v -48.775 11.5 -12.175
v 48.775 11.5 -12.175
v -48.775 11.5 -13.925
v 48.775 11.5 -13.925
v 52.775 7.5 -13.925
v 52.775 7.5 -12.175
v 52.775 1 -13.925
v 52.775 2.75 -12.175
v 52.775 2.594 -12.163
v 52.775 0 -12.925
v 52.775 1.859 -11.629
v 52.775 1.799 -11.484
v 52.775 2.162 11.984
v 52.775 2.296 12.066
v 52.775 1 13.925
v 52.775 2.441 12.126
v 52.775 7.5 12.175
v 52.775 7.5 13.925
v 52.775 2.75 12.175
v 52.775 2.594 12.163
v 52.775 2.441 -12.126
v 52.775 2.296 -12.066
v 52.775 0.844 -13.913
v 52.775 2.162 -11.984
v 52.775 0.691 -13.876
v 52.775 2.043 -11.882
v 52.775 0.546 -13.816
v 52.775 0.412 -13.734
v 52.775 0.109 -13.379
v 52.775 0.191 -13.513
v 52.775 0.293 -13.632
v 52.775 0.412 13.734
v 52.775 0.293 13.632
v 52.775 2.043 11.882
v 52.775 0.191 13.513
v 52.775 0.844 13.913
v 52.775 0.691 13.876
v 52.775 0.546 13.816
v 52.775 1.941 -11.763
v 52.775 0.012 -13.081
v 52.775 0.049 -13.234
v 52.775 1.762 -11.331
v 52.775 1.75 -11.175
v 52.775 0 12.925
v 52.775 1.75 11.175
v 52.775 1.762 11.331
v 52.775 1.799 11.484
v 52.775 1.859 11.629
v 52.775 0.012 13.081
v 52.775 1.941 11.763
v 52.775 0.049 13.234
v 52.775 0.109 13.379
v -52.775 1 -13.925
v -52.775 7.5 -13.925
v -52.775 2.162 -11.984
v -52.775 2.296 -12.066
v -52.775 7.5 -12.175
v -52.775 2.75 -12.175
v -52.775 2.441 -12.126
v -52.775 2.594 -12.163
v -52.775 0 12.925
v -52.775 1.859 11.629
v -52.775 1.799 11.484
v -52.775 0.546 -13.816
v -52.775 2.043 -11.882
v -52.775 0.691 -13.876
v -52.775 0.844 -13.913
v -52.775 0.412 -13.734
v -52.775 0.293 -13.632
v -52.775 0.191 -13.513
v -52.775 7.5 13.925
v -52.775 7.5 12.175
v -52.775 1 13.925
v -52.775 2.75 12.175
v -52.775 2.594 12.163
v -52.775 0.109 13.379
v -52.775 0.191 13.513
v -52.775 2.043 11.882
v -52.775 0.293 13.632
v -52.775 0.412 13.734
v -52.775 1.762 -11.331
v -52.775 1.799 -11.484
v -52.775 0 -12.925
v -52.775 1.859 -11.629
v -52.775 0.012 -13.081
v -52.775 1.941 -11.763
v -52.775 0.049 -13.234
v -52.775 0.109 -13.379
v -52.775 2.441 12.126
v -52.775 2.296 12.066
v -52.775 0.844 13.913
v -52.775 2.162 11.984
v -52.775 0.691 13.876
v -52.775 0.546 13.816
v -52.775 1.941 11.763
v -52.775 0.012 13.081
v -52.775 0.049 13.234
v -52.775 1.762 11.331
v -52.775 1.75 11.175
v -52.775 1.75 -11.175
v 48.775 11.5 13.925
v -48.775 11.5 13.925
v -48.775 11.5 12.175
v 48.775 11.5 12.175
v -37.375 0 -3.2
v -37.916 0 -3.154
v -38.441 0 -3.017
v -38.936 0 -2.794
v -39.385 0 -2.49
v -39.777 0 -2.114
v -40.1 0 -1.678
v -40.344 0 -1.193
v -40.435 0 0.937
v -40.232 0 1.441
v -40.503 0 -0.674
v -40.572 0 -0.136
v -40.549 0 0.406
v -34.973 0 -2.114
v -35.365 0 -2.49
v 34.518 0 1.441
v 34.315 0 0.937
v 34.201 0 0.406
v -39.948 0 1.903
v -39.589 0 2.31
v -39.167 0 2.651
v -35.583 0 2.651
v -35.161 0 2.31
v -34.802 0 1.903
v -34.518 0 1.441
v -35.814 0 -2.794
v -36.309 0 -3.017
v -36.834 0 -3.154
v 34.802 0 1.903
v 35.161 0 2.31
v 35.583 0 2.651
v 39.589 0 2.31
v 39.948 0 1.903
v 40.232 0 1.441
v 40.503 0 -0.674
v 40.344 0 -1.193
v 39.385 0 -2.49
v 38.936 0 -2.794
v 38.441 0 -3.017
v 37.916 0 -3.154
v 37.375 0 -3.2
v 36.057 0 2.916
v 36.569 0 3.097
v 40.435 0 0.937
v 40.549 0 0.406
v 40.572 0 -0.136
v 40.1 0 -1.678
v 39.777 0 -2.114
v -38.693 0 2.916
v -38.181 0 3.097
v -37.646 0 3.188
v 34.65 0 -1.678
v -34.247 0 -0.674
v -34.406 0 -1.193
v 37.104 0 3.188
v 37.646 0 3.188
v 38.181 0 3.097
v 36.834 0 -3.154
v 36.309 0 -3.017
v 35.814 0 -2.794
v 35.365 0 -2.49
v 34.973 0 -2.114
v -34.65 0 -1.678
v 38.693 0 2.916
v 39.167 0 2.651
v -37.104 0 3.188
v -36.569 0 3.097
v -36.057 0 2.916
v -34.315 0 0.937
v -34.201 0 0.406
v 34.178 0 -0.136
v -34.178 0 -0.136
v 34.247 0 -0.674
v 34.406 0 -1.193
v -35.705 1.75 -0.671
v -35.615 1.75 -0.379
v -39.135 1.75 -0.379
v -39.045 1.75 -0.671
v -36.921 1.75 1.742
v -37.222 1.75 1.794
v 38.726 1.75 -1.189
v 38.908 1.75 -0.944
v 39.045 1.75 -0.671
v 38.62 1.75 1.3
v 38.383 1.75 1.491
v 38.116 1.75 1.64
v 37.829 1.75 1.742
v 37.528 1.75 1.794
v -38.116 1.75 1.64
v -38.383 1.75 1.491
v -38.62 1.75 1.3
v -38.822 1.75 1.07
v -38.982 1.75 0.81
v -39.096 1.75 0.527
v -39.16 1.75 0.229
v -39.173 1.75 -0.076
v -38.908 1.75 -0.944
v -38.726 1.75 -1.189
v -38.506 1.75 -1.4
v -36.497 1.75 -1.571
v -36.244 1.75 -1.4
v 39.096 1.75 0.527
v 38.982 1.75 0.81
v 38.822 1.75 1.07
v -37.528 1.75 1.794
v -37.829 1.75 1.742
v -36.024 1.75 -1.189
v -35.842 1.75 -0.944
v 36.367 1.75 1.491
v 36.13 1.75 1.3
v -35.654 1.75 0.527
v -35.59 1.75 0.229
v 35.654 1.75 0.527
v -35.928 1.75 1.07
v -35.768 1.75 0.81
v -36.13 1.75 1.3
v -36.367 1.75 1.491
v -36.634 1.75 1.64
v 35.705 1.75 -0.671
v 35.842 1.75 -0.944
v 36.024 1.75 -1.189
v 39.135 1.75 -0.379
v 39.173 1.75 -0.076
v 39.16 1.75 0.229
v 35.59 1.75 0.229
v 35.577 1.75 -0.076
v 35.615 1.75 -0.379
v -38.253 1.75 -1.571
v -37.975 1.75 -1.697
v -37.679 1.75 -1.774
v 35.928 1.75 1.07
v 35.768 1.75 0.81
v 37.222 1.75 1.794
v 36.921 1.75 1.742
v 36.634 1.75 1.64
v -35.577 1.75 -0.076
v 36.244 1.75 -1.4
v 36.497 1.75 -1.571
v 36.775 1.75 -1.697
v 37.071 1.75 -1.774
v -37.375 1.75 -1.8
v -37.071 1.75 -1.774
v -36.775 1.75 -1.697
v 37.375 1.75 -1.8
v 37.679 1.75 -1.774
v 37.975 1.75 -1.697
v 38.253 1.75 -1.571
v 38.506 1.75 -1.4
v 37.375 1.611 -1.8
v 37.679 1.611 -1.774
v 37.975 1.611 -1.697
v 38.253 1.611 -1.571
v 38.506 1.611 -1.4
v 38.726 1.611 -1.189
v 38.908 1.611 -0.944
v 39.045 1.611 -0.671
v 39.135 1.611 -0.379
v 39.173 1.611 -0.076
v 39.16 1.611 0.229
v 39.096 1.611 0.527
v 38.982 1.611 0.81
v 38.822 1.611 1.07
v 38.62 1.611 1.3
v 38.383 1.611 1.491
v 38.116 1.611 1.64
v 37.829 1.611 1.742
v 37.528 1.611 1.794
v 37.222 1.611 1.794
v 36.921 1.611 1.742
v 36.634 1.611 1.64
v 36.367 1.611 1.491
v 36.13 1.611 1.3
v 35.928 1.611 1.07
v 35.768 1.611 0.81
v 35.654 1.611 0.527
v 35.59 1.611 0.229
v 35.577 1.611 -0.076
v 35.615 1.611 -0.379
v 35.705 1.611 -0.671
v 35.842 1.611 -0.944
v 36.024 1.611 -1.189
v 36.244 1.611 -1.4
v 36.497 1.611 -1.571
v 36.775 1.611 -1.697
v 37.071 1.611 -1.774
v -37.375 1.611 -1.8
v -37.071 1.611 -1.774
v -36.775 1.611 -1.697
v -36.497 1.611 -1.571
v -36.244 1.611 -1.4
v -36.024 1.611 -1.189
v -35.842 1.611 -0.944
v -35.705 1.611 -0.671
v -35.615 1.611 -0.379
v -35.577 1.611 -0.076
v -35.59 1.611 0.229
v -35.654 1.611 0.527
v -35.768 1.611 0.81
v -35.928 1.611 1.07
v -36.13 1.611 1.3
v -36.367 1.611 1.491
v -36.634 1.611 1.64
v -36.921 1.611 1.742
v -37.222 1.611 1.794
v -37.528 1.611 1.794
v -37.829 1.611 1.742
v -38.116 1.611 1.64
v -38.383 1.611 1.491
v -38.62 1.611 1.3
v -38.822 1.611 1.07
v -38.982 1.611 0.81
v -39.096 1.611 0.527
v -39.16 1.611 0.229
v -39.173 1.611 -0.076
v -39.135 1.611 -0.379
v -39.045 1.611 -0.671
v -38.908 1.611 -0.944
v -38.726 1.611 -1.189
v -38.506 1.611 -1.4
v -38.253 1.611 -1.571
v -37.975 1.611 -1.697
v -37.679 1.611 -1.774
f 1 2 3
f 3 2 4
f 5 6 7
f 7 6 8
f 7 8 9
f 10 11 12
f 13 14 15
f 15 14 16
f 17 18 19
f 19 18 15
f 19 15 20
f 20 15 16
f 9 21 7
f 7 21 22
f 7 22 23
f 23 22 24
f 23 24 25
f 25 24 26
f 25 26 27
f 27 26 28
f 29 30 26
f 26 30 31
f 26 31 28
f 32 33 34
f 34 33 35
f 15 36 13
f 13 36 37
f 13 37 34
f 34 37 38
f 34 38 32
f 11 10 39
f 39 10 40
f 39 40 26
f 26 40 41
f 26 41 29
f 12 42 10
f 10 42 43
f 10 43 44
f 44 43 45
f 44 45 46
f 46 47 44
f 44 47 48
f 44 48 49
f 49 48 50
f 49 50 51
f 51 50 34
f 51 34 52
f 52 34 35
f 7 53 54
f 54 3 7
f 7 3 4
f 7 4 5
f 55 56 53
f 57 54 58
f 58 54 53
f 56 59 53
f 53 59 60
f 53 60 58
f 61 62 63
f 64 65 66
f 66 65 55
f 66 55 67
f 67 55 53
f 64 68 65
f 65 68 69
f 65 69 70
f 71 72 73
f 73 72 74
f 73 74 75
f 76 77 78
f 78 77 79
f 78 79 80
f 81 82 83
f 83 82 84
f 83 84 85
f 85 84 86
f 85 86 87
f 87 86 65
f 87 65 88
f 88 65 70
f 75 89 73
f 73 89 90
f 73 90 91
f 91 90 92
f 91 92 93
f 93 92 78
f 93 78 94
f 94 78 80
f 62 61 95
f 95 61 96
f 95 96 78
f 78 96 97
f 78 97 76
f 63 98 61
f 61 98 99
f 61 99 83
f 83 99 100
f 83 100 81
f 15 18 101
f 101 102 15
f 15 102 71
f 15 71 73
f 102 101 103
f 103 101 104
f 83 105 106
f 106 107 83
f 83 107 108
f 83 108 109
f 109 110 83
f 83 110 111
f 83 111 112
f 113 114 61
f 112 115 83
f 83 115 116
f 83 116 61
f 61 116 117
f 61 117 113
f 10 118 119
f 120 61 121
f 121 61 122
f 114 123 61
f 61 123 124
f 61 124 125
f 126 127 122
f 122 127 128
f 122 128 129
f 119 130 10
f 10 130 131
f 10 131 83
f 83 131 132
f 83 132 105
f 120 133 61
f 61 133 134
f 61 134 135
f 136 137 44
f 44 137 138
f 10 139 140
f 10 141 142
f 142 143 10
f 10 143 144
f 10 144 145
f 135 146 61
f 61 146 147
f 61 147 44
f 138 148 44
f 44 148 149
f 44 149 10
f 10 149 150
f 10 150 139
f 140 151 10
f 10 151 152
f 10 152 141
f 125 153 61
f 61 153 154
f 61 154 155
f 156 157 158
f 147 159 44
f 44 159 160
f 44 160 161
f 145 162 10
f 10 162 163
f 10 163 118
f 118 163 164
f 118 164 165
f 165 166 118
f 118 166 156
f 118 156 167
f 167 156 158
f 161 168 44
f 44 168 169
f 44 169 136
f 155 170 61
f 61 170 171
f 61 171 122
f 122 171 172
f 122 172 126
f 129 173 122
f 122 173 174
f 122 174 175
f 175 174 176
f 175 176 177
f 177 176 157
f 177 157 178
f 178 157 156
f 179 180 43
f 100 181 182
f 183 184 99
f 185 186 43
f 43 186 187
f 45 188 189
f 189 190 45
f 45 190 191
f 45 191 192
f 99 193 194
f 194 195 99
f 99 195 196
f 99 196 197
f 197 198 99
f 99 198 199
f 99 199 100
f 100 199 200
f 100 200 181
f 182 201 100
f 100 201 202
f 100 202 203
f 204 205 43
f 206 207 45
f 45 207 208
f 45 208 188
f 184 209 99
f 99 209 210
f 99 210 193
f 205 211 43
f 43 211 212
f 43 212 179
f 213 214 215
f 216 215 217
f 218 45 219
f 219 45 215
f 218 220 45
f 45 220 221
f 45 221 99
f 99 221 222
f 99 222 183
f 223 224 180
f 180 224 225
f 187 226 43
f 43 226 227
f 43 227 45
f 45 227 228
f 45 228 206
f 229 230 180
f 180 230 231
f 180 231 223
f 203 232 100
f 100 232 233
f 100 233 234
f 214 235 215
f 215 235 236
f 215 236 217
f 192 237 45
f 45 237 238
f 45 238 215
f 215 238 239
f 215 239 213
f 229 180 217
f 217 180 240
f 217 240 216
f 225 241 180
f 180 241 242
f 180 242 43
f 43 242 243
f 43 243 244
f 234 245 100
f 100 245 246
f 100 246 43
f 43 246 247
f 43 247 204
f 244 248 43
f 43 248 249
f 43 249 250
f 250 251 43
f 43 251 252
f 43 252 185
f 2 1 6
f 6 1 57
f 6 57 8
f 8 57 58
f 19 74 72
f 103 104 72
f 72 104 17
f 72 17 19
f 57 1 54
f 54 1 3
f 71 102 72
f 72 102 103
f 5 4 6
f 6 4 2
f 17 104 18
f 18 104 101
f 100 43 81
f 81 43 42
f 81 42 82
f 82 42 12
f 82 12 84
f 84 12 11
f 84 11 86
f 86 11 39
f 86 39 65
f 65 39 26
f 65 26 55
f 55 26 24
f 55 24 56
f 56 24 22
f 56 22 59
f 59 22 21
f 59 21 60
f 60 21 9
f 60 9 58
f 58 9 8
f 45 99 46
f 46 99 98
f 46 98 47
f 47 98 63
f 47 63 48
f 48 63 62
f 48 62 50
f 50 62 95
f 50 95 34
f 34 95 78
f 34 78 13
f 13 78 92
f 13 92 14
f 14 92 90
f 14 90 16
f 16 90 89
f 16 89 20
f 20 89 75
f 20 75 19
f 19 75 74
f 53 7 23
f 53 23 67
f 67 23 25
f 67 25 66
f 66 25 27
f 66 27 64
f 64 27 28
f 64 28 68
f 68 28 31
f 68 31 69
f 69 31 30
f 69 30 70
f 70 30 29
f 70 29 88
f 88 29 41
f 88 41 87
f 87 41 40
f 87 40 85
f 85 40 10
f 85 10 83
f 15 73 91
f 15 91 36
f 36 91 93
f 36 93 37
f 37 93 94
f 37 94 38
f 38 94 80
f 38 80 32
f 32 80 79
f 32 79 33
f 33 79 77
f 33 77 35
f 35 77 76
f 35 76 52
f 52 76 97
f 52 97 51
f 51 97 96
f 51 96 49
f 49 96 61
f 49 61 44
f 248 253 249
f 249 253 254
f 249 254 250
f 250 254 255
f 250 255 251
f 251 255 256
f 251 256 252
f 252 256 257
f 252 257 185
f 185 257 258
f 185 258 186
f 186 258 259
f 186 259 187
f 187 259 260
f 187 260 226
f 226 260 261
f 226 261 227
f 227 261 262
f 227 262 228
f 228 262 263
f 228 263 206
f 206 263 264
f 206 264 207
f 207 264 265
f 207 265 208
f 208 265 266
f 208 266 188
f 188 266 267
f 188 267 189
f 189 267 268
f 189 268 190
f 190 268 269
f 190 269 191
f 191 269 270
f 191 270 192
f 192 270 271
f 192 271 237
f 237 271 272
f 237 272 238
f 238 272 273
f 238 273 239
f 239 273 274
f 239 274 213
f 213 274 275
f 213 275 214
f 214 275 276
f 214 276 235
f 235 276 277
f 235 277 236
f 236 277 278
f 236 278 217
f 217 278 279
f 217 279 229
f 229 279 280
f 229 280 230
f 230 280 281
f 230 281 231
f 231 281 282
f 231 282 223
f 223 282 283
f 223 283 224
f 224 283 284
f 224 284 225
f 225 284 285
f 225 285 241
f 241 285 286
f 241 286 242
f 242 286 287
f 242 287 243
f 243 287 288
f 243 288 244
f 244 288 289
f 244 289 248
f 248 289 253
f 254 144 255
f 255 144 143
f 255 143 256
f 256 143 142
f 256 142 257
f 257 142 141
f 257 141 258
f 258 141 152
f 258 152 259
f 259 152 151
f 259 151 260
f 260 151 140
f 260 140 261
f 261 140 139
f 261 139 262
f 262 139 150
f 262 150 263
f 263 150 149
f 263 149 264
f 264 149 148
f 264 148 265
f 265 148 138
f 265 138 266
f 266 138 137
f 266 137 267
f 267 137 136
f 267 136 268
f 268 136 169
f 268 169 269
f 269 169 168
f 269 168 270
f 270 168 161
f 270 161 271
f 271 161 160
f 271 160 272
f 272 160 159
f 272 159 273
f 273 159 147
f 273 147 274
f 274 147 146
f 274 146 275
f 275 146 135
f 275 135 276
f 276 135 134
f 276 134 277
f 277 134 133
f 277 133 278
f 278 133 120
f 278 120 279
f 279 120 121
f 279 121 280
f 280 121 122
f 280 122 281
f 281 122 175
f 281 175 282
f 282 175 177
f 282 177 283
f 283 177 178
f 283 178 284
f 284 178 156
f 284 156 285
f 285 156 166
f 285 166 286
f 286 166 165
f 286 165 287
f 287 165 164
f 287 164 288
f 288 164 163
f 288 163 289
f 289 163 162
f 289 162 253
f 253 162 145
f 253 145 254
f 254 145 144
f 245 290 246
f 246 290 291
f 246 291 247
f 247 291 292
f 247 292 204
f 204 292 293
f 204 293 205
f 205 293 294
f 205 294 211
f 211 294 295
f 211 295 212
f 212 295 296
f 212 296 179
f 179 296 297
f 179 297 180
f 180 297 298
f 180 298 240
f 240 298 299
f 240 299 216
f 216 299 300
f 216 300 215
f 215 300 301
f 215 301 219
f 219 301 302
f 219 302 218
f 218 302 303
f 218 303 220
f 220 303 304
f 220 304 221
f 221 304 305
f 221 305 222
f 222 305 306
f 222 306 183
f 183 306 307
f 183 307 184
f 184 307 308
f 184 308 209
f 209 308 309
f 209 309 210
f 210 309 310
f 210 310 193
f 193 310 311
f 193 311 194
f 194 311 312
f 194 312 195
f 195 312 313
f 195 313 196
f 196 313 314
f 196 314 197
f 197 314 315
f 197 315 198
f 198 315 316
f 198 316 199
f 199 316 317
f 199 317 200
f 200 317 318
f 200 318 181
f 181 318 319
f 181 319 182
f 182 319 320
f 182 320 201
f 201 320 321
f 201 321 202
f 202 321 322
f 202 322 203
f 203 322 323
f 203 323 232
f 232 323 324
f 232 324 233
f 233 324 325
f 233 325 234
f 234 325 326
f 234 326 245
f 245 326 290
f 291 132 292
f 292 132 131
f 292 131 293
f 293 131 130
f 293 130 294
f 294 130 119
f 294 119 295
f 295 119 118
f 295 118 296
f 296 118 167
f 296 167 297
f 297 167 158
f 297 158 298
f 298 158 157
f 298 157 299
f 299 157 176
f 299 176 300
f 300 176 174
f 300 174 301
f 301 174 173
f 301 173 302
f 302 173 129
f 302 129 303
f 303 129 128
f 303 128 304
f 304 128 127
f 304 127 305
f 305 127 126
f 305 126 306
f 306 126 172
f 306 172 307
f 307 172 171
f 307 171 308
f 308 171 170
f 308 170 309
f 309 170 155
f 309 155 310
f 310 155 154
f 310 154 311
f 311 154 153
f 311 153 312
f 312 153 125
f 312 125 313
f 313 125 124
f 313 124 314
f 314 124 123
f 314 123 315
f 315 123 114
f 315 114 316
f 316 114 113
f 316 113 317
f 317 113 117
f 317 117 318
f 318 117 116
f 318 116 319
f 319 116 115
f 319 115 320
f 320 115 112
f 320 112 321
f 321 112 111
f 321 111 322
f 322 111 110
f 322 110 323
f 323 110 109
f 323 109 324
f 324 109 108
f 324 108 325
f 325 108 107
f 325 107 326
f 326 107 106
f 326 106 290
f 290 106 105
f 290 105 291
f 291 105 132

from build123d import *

# Parameters (mm, degrees)
SKETCH1_W           = 105.55
SKETCH1_H           = 27.85
BOSS_EXTRUDE1_DEPTH = 11.5
SKETCH2_W           = 105.55
SKETCH2_H           = 24.35
CUT_EXTRUDE1_DEPTH  = 9.75
CHAMFER1_SIZE       = 4
FILLET1_R           = 1
HOLE1_D             = 3.6
HOLE1_CSINK_D       = 6.4
HOLE1_CSINK_ANGLE   = 82


with BuildPart() as part:
    # Sketch1 → Boss-Extrude1 (new body)
    with BuildSketch(Plane(origin=(0, 0, 0), x_dir=(1, 0, 0), z_dir=(0, 1, 0))):
        Rectangle(SKETCH1_W, SKETCH1_H)
    extrude(amount=BOSS_EXTRUDE1_DEPTH)

    # Sketch2 → Cut-Extrude1 (cut)
    with BuildSketch(Plane(origin=(0, 11.5, 0), x_dir=(1, 0, 0), z_dir=(0, 1, 0))):
        Rectangle(SKETCH2_W, SKETCH2_H)
    extrude(amount=-CUT_EXTRUDE1_DEPTH, mode=Mode.SUBTRACT)

    # Chamfer1
    chamfer1_edges = [part.edges().sort_by_distance(p)[0] for p in [
        (-52.775, 11.5, -13.05),
        (52.775, 11.5, -13.05),
        (-52.775, 11.5, 13.05),
        (52.775, 11.5, 13.05),
    ]]
    chamfer(chamfer1_edges, length=CHAMFER1_SIZE)

    # Fillet1
    fillet1_edges = [part.edges().sort_by_distance(p)[0] for p in [
        (0, 1.75, -12.175),
        (0, 1.75, 12.175),
        (0, 0, 13.925),
        (0, 0, -13.925),
    ]]
    fillet(fillet1_edges, radius=FILLET1_R)

    # Hole1 (through all)
    with Locations(Plane(origin=(-37.375, 0, 0), x_dir=(0, 0, -1), z_dir=(0, -1, 0))):
        with Locations((0, 0), (0, 74.75)):
            CounterSinkHole(HOLE1_D / 2, HOLE1_CSINK_D / 2, counter_sink_angle=HOLE1_CSINK_ANGLE)


solid = part.part
